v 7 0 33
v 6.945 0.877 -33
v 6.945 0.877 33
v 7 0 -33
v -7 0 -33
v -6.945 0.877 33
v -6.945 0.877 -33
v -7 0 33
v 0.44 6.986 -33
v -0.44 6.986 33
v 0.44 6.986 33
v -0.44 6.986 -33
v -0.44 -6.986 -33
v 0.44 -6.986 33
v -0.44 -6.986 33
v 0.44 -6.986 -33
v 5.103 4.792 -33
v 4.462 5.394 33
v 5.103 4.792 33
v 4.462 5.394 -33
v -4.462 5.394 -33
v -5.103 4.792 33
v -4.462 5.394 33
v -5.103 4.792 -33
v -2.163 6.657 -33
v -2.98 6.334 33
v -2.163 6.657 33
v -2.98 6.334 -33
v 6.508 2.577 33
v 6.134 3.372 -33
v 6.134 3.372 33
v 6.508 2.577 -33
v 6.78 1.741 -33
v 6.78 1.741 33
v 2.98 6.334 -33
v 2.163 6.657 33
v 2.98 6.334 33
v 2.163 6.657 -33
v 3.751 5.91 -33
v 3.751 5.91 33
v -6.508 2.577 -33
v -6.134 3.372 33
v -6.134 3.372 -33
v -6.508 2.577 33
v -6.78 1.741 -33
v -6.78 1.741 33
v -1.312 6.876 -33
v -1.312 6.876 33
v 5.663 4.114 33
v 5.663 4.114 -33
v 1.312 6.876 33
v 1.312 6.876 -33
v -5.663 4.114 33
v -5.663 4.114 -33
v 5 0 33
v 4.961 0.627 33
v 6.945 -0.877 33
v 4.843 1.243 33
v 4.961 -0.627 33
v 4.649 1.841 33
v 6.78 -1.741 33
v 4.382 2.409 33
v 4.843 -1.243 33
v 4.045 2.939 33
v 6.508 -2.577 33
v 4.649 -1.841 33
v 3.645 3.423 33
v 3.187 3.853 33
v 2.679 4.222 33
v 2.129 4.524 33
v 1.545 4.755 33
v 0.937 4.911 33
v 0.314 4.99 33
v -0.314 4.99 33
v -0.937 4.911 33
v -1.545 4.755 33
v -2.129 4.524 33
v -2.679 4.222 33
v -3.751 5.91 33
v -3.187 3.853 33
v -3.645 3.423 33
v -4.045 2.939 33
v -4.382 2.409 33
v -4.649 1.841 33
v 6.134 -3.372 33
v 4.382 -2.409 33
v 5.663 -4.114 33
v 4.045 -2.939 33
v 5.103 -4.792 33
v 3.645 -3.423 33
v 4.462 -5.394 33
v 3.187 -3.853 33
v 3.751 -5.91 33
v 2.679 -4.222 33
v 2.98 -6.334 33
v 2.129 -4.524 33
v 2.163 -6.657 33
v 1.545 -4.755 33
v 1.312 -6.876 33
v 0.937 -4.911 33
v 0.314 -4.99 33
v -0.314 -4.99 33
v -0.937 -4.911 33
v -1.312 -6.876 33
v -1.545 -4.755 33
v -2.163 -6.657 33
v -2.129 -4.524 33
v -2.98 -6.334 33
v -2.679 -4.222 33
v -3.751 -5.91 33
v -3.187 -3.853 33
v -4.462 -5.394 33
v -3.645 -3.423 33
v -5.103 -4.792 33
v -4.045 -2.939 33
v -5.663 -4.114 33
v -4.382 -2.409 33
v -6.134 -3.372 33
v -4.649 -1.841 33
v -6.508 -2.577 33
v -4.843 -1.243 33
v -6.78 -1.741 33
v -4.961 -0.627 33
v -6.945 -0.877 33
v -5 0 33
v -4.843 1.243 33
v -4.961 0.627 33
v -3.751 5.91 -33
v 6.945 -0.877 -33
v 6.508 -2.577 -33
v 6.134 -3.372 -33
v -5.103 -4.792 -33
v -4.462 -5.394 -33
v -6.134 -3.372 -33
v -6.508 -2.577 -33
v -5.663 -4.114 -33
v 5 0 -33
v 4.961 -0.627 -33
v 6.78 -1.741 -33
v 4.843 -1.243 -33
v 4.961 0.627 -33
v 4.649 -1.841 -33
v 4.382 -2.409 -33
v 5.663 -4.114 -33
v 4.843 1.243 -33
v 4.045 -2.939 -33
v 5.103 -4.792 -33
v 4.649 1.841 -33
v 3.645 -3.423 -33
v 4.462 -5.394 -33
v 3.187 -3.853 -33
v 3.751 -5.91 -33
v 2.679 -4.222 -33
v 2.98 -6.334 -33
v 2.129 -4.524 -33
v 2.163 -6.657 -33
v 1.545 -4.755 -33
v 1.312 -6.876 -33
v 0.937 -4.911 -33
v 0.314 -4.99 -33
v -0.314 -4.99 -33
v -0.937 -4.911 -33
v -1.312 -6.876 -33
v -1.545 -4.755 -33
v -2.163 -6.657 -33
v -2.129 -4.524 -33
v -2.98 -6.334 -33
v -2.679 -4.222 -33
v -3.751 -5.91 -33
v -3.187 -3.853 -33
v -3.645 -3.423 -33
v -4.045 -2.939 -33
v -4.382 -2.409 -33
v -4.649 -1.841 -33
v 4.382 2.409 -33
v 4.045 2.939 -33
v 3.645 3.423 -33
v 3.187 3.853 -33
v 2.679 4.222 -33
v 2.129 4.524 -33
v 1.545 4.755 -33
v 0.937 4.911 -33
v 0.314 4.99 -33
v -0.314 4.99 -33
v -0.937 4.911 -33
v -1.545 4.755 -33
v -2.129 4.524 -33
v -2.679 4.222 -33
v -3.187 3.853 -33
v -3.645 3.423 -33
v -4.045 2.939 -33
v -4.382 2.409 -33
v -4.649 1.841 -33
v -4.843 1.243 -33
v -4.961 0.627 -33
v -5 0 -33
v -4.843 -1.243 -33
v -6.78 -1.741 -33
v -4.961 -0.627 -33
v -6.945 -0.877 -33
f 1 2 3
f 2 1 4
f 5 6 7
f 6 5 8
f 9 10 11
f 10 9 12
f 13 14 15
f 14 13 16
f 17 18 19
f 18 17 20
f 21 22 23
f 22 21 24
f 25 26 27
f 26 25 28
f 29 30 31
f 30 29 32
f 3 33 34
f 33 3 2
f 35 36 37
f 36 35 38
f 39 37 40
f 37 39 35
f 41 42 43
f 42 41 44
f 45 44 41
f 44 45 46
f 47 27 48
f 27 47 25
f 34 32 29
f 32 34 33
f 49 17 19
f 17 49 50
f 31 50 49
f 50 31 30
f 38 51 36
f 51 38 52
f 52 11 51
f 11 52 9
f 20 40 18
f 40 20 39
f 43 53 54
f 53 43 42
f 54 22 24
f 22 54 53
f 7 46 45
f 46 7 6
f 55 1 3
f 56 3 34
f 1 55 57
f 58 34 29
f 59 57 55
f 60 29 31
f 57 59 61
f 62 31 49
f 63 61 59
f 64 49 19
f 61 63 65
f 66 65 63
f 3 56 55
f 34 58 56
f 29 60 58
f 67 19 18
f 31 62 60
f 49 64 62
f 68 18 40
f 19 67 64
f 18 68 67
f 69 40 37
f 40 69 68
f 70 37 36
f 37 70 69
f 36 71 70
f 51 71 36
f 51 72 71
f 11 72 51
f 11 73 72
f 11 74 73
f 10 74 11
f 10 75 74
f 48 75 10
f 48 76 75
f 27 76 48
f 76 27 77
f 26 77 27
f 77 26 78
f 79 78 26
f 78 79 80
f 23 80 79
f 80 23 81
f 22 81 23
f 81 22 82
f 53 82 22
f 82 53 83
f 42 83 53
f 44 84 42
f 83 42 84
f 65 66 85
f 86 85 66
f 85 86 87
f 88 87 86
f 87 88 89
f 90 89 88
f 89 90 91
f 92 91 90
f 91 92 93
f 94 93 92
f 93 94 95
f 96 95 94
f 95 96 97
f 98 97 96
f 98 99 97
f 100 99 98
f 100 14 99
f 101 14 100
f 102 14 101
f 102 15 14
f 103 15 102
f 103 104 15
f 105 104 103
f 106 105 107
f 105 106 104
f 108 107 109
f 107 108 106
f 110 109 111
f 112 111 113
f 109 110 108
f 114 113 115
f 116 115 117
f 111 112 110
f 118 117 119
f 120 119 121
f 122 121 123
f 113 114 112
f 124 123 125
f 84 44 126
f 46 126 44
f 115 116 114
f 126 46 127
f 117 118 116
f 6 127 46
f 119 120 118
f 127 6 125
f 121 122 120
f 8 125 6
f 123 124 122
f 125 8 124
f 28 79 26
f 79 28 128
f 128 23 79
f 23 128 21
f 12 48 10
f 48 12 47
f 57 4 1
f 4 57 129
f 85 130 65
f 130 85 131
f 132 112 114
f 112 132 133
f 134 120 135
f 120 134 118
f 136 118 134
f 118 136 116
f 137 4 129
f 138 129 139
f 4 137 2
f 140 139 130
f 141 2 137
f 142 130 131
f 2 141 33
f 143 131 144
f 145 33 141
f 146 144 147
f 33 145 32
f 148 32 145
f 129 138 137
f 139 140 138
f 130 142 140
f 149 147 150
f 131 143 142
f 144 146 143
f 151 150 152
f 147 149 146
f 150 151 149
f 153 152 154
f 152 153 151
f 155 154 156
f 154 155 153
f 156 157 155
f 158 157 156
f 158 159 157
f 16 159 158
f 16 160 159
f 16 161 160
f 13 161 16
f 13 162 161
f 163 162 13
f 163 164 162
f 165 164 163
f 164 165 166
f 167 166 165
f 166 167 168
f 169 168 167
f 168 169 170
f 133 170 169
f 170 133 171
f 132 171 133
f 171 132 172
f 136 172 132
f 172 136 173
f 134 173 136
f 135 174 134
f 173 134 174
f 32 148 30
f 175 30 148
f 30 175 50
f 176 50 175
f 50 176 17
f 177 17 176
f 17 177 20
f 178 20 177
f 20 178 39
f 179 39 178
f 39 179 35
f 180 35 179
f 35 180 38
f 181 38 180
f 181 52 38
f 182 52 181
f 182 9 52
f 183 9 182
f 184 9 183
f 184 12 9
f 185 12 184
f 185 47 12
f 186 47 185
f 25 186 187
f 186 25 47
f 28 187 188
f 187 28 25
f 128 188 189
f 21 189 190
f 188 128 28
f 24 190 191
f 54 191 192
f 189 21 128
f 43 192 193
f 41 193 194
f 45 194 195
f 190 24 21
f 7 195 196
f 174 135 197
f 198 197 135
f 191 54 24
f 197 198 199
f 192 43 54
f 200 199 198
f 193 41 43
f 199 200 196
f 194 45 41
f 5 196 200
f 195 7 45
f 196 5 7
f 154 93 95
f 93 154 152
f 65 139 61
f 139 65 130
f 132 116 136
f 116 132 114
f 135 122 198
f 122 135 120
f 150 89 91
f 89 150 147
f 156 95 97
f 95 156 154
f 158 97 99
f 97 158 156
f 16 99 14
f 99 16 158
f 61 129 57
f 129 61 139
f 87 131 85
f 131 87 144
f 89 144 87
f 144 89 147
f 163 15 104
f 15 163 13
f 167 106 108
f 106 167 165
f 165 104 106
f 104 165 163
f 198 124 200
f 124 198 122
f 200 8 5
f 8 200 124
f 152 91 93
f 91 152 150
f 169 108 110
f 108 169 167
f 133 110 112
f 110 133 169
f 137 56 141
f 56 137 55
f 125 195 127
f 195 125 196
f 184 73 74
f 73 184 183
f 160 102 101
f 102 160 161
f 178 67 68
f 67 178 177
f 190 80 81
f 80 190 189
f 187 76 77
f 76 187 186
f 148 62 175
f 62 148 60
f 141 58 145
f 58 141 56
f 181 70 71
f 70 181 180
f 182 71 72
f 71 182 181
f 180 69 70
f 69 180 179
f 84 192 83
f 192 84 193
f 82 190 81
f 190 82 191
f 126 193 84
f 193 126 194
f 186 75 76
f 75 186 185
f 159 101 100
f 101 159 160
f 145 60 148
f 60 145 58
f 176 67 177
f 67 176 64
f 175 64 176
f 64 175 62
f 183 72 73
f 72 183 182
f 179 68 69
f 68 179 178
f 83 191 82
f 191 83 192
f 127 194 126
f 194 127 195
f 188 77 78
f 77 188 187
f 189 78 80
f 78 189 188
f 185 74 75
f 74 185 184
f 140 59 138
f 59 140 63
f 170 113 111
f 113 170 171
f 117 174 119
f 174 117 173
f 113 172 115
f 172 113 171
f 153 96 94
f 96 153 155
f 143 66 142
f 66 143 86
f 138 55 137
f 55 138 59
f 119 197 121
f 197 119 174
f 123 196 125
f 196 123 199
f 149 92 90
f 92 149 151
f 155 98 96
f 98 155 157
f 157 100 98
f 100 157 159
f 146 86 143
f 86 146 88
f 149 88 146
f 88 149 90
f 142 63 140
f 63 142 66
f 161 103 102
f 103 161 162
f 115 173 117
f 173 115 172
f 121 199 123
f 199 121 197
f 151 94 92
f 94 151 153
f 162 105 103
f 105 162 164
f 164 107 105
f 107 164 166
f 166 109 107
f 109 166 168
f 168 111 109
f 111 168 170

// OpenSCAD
$fn = 50;


difference() {
	union() {
		translate(v = [0, 0, -33.0000000000]) {
			cylinder(h = 66, r = 7.0000000000);
		}
	}
	union() {
		translate(v = [0, 0, -100.0000000000]) {
			cylinder(h = 200, r = 5);
		}
	}
}
